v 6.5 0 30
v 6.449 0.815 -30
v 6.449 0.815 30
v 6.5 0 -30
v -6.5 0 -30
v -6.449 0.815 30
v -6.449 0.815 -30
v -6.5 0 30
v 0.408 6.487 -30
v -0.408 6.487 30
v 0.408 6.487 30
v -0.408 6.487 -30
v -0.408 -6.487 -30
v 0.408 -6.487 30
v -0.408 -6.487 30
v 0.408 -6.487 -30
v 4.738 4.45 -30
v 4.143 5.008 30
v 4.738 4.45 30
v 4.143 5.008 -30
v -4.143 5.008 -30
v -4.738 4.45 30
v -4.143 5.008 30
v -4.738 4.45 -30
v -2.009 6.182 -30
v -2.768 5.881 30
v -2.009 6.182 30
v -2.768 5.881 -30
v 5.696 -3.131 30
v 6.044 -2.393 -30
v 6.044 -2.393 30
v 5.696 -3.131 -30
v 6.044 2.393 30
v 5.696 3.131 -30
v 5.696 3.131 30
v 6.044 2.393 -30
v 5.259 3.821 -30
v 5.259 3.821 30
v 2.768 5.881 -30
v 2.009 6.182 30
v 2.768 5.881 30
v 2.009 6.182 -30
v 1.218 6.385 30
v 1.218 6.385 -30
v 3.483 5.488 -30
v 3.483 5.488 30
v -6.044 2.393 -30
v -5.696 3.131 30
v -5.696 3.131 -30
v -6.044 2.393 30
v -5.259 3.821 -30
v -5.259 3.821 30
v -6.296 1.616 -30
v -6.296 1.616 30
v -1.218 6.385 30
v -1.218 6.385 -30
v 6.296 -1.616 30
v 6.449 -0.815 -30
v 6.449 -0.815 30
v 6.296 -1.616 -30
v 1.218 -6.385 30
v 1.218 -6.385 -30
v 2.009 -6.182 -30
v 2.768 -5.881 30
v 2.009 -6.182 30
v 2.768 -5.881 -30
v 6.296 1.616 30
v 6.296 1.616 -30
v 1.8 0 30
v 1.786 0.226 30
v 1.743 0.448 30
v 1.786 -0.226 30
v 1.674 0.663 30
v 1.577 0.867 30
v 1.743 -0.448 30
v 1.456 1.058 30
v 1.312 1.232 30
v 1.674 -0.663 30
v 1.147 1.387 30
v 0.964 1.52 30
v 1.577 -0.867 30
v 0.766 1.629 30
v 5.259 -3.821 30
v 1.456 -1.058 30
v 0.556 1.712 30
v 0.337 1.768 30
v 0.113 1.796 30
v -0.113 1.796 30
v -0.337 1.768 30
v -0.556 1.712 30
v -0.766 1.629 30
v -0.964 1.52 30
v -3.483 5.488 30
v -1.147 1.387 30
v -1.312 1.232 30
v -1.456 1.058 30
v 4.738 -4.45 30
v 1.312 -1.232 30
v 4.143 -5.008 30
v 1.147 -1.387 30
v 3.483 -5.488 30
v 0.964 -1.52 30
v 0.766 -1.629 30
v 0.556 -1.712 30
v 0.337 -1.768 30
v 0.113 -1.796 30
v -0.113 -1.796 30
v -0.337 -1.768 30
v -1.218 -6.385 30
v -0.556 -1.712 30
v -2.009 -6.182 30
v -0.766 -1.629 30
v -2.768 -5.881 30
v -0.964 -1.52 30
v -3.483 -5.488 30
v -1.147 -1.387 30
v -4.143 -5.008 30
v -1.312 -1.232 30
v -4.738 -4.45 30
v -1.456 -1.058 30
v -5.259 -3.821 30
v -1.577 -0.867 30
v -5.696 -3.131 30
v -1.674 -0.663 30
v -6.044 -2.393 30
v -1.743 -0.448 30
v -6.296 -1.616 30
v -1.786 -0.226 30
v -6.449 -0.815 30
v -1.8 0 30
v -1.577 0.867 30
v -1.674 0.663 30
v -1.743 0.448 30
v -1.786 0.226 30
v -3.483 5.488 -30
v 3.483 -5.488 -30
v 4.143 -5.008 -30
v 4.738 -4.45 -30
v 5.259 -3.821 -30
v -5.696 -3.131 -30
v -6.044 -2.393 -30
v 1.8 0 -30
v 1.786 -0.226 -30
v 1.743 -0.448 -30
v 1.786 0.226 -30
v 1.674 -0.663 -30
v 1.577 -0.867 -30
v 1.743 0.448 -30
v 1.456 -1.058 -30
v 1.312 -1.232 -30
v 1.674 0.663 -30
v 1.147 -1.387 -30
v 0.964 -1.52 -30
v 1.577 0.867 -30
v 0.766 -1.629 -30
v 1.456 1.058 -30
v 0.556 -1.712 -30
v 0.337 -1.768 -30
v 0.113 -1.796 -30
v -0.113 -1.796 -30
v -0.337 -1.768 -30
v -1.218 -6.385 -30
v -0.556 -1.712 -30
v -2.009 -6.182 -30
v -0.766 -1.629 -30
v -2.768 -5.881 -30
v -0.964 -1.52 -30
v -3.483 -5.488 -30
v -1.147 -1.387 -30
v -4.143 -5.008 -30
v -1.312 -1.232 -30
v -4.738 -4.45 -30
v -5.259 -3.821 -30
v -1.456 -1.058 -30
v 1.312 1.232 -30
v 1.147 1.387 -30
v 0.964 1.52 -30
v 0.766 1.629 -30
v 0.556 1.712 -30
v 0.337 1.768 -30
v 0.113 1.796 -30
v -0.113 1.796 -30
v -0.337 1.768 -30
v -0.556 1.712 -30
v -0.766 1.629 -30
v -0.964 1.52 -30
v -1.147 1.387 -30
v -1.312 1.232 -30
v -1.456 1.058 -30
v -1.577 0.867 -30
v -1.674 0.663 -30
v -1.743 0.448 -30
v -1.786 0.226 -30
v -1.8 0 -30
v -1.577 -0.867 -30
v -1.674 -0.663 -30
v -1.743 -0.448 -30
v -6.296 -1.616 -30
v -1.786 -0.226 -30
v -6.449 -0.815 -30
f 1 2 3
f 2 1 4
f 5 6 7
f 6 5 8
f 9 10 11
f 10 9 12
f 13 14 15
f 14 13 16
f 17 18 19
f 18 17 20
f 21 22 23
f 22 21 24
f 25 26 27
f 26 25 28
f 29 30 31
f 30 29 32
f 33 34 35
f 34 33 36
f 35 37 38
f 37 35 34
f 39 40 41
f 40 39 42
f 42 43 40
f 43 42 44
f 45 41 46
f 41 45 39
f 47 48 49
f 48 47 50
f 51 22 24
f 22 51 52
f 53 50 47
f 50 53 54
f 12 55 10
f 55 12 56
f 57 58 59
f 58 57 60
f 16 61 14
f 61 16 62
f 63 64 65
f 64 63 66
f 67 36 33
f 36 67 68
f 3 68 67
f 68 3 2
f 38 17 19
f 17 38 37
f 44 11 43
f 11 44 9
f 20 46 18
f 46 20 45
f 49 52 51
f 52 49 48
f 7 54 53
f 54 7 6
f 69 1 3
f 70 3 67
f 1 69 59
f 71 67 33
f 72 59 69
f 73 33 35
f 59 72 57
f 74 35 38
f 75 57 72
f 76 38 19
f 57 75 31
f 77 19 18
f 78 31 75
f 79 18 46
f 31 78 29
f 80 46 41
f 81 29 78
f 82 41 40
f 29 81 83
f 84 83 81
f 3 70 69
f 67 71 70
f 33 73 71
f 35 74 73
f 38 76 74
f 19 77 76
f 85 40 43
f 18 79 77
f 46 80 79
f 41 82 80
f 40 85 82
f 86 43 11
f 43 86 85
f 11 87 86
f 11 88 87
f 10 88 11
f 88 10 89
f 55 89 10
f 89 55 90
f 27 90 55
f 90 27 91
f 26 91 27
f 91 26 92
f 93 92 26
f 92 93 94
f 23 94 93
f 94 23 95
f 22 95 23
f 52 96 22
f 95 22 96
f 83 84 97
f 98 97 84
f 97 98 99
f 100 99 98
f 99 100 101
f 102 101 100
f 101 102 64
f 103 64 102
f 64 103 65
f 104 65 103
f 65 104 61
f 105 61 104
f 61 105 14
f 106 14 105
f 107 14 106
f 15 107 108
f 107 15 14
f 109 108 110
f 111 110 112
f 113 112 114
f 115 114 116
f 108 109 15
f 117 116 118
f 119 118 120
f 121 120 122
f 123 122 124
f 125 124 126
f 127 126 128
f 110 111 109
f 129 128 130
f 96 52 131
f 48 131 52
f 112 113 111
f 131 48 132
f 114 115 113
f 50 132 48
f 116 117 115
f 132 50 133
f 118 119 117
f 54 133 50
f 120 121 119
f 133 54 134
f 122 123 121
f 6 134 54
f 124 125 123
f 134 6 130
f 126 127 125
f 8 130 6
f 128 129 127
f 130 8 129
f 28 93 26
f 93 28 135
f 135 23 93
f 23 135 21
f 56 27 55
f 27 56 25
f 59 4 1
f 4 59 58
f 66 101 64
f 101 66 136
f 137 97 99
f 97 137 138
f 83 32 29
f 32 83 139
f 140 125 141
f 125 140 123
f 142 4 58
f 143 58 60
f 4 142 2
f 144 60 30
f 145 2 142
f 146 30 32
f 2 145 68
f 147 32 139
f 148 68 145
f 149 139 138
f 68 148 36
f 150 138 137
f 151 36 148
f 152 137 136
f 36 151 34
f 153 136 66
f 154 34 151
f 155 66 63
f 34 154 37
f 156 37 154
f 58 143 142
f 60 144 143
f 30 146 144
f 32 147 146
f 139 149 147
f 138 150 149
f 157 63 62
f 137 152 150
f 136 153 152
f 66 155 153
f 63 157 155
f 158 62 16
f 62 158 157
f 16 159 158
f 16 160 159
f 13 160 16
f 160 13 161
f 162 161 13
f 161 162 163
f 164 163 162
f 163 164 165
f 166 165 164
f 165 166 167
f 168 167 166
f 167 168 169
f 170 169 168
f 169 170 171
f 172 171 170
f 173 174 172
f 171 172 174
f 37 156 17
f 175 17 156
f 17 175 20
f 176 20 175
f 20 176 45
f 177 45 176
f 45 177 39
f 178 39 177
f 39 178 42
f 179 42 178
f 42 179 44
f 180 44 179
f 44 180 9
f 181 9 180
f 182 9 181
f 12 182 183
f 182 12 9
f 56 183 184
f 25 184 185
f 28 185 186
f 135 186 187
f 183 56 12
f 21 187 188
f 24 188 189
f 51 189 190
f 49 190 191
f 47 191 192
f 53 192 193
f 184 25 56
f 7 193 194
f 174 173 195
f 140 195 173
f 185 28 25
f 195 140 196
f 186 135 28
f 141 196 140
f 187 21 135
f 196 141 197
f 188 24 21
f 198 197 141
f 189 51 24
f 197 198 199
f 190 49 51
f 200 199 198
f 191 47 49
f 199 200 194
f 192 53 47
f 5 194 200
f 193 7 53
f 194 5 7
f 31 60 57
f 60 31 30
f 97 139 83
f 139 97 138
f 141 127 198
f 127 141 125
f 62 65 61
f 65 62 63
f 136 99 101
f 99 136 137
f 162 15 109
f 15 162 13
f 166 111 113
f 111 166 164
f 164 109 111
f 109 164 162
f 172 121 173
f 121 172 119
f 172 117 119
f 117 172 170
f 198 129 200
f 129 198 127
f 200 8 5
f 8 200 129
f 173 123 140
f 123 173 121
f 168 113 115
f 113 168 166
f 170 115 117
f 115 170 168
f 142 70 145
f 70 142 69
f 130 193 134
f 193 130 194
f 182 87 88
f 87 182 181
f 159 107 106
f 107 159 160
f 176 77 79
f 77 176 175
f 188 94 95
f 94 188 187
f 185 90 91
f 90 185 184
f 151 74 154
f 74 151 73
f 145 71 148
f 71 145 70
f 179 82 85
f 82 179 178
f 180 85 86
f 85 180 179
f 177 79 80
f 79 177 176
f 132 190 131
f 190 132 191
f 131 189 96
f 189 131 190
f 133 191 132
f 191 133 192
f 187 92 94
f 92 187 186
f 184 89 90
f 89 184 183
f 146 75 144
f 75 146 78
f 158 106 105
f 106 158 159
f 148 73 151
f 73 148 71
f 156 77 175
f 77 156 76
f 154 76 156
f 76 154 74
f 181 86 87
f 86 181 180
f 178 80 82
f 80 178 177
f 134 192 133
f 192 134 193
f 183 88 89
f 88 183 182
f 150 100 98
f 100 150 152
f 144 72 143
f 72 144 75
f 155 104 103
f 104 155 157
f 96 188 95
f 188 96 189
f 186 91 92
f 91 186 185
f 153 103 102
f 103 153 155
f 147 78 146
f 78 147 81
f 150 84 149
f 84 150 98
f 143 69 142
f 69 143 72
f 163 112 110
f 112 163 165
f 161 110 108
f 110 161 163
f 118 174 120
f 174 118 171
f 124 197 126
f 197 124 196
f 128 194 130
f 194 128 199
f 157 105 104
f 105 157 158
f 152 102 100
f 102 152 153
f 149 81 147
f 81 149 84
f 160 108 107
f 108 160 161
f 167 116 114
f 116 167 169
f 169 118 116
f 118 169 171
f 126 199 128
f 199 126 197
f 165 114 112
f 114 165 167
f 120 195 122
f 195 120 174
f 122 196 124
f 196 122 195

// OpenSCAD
$fn = 50;


difference() {
	union() {
		translate(v = [0, 0, -30.0000000000]) {
			cylinder(h = 60, r = 6.5000000000);
		}
	}
	union() {
		translate(v = [0, 0, -100.0000000000]) {
			cylinder(h = 200, r = 1.8000000000);
		}
	}
}
